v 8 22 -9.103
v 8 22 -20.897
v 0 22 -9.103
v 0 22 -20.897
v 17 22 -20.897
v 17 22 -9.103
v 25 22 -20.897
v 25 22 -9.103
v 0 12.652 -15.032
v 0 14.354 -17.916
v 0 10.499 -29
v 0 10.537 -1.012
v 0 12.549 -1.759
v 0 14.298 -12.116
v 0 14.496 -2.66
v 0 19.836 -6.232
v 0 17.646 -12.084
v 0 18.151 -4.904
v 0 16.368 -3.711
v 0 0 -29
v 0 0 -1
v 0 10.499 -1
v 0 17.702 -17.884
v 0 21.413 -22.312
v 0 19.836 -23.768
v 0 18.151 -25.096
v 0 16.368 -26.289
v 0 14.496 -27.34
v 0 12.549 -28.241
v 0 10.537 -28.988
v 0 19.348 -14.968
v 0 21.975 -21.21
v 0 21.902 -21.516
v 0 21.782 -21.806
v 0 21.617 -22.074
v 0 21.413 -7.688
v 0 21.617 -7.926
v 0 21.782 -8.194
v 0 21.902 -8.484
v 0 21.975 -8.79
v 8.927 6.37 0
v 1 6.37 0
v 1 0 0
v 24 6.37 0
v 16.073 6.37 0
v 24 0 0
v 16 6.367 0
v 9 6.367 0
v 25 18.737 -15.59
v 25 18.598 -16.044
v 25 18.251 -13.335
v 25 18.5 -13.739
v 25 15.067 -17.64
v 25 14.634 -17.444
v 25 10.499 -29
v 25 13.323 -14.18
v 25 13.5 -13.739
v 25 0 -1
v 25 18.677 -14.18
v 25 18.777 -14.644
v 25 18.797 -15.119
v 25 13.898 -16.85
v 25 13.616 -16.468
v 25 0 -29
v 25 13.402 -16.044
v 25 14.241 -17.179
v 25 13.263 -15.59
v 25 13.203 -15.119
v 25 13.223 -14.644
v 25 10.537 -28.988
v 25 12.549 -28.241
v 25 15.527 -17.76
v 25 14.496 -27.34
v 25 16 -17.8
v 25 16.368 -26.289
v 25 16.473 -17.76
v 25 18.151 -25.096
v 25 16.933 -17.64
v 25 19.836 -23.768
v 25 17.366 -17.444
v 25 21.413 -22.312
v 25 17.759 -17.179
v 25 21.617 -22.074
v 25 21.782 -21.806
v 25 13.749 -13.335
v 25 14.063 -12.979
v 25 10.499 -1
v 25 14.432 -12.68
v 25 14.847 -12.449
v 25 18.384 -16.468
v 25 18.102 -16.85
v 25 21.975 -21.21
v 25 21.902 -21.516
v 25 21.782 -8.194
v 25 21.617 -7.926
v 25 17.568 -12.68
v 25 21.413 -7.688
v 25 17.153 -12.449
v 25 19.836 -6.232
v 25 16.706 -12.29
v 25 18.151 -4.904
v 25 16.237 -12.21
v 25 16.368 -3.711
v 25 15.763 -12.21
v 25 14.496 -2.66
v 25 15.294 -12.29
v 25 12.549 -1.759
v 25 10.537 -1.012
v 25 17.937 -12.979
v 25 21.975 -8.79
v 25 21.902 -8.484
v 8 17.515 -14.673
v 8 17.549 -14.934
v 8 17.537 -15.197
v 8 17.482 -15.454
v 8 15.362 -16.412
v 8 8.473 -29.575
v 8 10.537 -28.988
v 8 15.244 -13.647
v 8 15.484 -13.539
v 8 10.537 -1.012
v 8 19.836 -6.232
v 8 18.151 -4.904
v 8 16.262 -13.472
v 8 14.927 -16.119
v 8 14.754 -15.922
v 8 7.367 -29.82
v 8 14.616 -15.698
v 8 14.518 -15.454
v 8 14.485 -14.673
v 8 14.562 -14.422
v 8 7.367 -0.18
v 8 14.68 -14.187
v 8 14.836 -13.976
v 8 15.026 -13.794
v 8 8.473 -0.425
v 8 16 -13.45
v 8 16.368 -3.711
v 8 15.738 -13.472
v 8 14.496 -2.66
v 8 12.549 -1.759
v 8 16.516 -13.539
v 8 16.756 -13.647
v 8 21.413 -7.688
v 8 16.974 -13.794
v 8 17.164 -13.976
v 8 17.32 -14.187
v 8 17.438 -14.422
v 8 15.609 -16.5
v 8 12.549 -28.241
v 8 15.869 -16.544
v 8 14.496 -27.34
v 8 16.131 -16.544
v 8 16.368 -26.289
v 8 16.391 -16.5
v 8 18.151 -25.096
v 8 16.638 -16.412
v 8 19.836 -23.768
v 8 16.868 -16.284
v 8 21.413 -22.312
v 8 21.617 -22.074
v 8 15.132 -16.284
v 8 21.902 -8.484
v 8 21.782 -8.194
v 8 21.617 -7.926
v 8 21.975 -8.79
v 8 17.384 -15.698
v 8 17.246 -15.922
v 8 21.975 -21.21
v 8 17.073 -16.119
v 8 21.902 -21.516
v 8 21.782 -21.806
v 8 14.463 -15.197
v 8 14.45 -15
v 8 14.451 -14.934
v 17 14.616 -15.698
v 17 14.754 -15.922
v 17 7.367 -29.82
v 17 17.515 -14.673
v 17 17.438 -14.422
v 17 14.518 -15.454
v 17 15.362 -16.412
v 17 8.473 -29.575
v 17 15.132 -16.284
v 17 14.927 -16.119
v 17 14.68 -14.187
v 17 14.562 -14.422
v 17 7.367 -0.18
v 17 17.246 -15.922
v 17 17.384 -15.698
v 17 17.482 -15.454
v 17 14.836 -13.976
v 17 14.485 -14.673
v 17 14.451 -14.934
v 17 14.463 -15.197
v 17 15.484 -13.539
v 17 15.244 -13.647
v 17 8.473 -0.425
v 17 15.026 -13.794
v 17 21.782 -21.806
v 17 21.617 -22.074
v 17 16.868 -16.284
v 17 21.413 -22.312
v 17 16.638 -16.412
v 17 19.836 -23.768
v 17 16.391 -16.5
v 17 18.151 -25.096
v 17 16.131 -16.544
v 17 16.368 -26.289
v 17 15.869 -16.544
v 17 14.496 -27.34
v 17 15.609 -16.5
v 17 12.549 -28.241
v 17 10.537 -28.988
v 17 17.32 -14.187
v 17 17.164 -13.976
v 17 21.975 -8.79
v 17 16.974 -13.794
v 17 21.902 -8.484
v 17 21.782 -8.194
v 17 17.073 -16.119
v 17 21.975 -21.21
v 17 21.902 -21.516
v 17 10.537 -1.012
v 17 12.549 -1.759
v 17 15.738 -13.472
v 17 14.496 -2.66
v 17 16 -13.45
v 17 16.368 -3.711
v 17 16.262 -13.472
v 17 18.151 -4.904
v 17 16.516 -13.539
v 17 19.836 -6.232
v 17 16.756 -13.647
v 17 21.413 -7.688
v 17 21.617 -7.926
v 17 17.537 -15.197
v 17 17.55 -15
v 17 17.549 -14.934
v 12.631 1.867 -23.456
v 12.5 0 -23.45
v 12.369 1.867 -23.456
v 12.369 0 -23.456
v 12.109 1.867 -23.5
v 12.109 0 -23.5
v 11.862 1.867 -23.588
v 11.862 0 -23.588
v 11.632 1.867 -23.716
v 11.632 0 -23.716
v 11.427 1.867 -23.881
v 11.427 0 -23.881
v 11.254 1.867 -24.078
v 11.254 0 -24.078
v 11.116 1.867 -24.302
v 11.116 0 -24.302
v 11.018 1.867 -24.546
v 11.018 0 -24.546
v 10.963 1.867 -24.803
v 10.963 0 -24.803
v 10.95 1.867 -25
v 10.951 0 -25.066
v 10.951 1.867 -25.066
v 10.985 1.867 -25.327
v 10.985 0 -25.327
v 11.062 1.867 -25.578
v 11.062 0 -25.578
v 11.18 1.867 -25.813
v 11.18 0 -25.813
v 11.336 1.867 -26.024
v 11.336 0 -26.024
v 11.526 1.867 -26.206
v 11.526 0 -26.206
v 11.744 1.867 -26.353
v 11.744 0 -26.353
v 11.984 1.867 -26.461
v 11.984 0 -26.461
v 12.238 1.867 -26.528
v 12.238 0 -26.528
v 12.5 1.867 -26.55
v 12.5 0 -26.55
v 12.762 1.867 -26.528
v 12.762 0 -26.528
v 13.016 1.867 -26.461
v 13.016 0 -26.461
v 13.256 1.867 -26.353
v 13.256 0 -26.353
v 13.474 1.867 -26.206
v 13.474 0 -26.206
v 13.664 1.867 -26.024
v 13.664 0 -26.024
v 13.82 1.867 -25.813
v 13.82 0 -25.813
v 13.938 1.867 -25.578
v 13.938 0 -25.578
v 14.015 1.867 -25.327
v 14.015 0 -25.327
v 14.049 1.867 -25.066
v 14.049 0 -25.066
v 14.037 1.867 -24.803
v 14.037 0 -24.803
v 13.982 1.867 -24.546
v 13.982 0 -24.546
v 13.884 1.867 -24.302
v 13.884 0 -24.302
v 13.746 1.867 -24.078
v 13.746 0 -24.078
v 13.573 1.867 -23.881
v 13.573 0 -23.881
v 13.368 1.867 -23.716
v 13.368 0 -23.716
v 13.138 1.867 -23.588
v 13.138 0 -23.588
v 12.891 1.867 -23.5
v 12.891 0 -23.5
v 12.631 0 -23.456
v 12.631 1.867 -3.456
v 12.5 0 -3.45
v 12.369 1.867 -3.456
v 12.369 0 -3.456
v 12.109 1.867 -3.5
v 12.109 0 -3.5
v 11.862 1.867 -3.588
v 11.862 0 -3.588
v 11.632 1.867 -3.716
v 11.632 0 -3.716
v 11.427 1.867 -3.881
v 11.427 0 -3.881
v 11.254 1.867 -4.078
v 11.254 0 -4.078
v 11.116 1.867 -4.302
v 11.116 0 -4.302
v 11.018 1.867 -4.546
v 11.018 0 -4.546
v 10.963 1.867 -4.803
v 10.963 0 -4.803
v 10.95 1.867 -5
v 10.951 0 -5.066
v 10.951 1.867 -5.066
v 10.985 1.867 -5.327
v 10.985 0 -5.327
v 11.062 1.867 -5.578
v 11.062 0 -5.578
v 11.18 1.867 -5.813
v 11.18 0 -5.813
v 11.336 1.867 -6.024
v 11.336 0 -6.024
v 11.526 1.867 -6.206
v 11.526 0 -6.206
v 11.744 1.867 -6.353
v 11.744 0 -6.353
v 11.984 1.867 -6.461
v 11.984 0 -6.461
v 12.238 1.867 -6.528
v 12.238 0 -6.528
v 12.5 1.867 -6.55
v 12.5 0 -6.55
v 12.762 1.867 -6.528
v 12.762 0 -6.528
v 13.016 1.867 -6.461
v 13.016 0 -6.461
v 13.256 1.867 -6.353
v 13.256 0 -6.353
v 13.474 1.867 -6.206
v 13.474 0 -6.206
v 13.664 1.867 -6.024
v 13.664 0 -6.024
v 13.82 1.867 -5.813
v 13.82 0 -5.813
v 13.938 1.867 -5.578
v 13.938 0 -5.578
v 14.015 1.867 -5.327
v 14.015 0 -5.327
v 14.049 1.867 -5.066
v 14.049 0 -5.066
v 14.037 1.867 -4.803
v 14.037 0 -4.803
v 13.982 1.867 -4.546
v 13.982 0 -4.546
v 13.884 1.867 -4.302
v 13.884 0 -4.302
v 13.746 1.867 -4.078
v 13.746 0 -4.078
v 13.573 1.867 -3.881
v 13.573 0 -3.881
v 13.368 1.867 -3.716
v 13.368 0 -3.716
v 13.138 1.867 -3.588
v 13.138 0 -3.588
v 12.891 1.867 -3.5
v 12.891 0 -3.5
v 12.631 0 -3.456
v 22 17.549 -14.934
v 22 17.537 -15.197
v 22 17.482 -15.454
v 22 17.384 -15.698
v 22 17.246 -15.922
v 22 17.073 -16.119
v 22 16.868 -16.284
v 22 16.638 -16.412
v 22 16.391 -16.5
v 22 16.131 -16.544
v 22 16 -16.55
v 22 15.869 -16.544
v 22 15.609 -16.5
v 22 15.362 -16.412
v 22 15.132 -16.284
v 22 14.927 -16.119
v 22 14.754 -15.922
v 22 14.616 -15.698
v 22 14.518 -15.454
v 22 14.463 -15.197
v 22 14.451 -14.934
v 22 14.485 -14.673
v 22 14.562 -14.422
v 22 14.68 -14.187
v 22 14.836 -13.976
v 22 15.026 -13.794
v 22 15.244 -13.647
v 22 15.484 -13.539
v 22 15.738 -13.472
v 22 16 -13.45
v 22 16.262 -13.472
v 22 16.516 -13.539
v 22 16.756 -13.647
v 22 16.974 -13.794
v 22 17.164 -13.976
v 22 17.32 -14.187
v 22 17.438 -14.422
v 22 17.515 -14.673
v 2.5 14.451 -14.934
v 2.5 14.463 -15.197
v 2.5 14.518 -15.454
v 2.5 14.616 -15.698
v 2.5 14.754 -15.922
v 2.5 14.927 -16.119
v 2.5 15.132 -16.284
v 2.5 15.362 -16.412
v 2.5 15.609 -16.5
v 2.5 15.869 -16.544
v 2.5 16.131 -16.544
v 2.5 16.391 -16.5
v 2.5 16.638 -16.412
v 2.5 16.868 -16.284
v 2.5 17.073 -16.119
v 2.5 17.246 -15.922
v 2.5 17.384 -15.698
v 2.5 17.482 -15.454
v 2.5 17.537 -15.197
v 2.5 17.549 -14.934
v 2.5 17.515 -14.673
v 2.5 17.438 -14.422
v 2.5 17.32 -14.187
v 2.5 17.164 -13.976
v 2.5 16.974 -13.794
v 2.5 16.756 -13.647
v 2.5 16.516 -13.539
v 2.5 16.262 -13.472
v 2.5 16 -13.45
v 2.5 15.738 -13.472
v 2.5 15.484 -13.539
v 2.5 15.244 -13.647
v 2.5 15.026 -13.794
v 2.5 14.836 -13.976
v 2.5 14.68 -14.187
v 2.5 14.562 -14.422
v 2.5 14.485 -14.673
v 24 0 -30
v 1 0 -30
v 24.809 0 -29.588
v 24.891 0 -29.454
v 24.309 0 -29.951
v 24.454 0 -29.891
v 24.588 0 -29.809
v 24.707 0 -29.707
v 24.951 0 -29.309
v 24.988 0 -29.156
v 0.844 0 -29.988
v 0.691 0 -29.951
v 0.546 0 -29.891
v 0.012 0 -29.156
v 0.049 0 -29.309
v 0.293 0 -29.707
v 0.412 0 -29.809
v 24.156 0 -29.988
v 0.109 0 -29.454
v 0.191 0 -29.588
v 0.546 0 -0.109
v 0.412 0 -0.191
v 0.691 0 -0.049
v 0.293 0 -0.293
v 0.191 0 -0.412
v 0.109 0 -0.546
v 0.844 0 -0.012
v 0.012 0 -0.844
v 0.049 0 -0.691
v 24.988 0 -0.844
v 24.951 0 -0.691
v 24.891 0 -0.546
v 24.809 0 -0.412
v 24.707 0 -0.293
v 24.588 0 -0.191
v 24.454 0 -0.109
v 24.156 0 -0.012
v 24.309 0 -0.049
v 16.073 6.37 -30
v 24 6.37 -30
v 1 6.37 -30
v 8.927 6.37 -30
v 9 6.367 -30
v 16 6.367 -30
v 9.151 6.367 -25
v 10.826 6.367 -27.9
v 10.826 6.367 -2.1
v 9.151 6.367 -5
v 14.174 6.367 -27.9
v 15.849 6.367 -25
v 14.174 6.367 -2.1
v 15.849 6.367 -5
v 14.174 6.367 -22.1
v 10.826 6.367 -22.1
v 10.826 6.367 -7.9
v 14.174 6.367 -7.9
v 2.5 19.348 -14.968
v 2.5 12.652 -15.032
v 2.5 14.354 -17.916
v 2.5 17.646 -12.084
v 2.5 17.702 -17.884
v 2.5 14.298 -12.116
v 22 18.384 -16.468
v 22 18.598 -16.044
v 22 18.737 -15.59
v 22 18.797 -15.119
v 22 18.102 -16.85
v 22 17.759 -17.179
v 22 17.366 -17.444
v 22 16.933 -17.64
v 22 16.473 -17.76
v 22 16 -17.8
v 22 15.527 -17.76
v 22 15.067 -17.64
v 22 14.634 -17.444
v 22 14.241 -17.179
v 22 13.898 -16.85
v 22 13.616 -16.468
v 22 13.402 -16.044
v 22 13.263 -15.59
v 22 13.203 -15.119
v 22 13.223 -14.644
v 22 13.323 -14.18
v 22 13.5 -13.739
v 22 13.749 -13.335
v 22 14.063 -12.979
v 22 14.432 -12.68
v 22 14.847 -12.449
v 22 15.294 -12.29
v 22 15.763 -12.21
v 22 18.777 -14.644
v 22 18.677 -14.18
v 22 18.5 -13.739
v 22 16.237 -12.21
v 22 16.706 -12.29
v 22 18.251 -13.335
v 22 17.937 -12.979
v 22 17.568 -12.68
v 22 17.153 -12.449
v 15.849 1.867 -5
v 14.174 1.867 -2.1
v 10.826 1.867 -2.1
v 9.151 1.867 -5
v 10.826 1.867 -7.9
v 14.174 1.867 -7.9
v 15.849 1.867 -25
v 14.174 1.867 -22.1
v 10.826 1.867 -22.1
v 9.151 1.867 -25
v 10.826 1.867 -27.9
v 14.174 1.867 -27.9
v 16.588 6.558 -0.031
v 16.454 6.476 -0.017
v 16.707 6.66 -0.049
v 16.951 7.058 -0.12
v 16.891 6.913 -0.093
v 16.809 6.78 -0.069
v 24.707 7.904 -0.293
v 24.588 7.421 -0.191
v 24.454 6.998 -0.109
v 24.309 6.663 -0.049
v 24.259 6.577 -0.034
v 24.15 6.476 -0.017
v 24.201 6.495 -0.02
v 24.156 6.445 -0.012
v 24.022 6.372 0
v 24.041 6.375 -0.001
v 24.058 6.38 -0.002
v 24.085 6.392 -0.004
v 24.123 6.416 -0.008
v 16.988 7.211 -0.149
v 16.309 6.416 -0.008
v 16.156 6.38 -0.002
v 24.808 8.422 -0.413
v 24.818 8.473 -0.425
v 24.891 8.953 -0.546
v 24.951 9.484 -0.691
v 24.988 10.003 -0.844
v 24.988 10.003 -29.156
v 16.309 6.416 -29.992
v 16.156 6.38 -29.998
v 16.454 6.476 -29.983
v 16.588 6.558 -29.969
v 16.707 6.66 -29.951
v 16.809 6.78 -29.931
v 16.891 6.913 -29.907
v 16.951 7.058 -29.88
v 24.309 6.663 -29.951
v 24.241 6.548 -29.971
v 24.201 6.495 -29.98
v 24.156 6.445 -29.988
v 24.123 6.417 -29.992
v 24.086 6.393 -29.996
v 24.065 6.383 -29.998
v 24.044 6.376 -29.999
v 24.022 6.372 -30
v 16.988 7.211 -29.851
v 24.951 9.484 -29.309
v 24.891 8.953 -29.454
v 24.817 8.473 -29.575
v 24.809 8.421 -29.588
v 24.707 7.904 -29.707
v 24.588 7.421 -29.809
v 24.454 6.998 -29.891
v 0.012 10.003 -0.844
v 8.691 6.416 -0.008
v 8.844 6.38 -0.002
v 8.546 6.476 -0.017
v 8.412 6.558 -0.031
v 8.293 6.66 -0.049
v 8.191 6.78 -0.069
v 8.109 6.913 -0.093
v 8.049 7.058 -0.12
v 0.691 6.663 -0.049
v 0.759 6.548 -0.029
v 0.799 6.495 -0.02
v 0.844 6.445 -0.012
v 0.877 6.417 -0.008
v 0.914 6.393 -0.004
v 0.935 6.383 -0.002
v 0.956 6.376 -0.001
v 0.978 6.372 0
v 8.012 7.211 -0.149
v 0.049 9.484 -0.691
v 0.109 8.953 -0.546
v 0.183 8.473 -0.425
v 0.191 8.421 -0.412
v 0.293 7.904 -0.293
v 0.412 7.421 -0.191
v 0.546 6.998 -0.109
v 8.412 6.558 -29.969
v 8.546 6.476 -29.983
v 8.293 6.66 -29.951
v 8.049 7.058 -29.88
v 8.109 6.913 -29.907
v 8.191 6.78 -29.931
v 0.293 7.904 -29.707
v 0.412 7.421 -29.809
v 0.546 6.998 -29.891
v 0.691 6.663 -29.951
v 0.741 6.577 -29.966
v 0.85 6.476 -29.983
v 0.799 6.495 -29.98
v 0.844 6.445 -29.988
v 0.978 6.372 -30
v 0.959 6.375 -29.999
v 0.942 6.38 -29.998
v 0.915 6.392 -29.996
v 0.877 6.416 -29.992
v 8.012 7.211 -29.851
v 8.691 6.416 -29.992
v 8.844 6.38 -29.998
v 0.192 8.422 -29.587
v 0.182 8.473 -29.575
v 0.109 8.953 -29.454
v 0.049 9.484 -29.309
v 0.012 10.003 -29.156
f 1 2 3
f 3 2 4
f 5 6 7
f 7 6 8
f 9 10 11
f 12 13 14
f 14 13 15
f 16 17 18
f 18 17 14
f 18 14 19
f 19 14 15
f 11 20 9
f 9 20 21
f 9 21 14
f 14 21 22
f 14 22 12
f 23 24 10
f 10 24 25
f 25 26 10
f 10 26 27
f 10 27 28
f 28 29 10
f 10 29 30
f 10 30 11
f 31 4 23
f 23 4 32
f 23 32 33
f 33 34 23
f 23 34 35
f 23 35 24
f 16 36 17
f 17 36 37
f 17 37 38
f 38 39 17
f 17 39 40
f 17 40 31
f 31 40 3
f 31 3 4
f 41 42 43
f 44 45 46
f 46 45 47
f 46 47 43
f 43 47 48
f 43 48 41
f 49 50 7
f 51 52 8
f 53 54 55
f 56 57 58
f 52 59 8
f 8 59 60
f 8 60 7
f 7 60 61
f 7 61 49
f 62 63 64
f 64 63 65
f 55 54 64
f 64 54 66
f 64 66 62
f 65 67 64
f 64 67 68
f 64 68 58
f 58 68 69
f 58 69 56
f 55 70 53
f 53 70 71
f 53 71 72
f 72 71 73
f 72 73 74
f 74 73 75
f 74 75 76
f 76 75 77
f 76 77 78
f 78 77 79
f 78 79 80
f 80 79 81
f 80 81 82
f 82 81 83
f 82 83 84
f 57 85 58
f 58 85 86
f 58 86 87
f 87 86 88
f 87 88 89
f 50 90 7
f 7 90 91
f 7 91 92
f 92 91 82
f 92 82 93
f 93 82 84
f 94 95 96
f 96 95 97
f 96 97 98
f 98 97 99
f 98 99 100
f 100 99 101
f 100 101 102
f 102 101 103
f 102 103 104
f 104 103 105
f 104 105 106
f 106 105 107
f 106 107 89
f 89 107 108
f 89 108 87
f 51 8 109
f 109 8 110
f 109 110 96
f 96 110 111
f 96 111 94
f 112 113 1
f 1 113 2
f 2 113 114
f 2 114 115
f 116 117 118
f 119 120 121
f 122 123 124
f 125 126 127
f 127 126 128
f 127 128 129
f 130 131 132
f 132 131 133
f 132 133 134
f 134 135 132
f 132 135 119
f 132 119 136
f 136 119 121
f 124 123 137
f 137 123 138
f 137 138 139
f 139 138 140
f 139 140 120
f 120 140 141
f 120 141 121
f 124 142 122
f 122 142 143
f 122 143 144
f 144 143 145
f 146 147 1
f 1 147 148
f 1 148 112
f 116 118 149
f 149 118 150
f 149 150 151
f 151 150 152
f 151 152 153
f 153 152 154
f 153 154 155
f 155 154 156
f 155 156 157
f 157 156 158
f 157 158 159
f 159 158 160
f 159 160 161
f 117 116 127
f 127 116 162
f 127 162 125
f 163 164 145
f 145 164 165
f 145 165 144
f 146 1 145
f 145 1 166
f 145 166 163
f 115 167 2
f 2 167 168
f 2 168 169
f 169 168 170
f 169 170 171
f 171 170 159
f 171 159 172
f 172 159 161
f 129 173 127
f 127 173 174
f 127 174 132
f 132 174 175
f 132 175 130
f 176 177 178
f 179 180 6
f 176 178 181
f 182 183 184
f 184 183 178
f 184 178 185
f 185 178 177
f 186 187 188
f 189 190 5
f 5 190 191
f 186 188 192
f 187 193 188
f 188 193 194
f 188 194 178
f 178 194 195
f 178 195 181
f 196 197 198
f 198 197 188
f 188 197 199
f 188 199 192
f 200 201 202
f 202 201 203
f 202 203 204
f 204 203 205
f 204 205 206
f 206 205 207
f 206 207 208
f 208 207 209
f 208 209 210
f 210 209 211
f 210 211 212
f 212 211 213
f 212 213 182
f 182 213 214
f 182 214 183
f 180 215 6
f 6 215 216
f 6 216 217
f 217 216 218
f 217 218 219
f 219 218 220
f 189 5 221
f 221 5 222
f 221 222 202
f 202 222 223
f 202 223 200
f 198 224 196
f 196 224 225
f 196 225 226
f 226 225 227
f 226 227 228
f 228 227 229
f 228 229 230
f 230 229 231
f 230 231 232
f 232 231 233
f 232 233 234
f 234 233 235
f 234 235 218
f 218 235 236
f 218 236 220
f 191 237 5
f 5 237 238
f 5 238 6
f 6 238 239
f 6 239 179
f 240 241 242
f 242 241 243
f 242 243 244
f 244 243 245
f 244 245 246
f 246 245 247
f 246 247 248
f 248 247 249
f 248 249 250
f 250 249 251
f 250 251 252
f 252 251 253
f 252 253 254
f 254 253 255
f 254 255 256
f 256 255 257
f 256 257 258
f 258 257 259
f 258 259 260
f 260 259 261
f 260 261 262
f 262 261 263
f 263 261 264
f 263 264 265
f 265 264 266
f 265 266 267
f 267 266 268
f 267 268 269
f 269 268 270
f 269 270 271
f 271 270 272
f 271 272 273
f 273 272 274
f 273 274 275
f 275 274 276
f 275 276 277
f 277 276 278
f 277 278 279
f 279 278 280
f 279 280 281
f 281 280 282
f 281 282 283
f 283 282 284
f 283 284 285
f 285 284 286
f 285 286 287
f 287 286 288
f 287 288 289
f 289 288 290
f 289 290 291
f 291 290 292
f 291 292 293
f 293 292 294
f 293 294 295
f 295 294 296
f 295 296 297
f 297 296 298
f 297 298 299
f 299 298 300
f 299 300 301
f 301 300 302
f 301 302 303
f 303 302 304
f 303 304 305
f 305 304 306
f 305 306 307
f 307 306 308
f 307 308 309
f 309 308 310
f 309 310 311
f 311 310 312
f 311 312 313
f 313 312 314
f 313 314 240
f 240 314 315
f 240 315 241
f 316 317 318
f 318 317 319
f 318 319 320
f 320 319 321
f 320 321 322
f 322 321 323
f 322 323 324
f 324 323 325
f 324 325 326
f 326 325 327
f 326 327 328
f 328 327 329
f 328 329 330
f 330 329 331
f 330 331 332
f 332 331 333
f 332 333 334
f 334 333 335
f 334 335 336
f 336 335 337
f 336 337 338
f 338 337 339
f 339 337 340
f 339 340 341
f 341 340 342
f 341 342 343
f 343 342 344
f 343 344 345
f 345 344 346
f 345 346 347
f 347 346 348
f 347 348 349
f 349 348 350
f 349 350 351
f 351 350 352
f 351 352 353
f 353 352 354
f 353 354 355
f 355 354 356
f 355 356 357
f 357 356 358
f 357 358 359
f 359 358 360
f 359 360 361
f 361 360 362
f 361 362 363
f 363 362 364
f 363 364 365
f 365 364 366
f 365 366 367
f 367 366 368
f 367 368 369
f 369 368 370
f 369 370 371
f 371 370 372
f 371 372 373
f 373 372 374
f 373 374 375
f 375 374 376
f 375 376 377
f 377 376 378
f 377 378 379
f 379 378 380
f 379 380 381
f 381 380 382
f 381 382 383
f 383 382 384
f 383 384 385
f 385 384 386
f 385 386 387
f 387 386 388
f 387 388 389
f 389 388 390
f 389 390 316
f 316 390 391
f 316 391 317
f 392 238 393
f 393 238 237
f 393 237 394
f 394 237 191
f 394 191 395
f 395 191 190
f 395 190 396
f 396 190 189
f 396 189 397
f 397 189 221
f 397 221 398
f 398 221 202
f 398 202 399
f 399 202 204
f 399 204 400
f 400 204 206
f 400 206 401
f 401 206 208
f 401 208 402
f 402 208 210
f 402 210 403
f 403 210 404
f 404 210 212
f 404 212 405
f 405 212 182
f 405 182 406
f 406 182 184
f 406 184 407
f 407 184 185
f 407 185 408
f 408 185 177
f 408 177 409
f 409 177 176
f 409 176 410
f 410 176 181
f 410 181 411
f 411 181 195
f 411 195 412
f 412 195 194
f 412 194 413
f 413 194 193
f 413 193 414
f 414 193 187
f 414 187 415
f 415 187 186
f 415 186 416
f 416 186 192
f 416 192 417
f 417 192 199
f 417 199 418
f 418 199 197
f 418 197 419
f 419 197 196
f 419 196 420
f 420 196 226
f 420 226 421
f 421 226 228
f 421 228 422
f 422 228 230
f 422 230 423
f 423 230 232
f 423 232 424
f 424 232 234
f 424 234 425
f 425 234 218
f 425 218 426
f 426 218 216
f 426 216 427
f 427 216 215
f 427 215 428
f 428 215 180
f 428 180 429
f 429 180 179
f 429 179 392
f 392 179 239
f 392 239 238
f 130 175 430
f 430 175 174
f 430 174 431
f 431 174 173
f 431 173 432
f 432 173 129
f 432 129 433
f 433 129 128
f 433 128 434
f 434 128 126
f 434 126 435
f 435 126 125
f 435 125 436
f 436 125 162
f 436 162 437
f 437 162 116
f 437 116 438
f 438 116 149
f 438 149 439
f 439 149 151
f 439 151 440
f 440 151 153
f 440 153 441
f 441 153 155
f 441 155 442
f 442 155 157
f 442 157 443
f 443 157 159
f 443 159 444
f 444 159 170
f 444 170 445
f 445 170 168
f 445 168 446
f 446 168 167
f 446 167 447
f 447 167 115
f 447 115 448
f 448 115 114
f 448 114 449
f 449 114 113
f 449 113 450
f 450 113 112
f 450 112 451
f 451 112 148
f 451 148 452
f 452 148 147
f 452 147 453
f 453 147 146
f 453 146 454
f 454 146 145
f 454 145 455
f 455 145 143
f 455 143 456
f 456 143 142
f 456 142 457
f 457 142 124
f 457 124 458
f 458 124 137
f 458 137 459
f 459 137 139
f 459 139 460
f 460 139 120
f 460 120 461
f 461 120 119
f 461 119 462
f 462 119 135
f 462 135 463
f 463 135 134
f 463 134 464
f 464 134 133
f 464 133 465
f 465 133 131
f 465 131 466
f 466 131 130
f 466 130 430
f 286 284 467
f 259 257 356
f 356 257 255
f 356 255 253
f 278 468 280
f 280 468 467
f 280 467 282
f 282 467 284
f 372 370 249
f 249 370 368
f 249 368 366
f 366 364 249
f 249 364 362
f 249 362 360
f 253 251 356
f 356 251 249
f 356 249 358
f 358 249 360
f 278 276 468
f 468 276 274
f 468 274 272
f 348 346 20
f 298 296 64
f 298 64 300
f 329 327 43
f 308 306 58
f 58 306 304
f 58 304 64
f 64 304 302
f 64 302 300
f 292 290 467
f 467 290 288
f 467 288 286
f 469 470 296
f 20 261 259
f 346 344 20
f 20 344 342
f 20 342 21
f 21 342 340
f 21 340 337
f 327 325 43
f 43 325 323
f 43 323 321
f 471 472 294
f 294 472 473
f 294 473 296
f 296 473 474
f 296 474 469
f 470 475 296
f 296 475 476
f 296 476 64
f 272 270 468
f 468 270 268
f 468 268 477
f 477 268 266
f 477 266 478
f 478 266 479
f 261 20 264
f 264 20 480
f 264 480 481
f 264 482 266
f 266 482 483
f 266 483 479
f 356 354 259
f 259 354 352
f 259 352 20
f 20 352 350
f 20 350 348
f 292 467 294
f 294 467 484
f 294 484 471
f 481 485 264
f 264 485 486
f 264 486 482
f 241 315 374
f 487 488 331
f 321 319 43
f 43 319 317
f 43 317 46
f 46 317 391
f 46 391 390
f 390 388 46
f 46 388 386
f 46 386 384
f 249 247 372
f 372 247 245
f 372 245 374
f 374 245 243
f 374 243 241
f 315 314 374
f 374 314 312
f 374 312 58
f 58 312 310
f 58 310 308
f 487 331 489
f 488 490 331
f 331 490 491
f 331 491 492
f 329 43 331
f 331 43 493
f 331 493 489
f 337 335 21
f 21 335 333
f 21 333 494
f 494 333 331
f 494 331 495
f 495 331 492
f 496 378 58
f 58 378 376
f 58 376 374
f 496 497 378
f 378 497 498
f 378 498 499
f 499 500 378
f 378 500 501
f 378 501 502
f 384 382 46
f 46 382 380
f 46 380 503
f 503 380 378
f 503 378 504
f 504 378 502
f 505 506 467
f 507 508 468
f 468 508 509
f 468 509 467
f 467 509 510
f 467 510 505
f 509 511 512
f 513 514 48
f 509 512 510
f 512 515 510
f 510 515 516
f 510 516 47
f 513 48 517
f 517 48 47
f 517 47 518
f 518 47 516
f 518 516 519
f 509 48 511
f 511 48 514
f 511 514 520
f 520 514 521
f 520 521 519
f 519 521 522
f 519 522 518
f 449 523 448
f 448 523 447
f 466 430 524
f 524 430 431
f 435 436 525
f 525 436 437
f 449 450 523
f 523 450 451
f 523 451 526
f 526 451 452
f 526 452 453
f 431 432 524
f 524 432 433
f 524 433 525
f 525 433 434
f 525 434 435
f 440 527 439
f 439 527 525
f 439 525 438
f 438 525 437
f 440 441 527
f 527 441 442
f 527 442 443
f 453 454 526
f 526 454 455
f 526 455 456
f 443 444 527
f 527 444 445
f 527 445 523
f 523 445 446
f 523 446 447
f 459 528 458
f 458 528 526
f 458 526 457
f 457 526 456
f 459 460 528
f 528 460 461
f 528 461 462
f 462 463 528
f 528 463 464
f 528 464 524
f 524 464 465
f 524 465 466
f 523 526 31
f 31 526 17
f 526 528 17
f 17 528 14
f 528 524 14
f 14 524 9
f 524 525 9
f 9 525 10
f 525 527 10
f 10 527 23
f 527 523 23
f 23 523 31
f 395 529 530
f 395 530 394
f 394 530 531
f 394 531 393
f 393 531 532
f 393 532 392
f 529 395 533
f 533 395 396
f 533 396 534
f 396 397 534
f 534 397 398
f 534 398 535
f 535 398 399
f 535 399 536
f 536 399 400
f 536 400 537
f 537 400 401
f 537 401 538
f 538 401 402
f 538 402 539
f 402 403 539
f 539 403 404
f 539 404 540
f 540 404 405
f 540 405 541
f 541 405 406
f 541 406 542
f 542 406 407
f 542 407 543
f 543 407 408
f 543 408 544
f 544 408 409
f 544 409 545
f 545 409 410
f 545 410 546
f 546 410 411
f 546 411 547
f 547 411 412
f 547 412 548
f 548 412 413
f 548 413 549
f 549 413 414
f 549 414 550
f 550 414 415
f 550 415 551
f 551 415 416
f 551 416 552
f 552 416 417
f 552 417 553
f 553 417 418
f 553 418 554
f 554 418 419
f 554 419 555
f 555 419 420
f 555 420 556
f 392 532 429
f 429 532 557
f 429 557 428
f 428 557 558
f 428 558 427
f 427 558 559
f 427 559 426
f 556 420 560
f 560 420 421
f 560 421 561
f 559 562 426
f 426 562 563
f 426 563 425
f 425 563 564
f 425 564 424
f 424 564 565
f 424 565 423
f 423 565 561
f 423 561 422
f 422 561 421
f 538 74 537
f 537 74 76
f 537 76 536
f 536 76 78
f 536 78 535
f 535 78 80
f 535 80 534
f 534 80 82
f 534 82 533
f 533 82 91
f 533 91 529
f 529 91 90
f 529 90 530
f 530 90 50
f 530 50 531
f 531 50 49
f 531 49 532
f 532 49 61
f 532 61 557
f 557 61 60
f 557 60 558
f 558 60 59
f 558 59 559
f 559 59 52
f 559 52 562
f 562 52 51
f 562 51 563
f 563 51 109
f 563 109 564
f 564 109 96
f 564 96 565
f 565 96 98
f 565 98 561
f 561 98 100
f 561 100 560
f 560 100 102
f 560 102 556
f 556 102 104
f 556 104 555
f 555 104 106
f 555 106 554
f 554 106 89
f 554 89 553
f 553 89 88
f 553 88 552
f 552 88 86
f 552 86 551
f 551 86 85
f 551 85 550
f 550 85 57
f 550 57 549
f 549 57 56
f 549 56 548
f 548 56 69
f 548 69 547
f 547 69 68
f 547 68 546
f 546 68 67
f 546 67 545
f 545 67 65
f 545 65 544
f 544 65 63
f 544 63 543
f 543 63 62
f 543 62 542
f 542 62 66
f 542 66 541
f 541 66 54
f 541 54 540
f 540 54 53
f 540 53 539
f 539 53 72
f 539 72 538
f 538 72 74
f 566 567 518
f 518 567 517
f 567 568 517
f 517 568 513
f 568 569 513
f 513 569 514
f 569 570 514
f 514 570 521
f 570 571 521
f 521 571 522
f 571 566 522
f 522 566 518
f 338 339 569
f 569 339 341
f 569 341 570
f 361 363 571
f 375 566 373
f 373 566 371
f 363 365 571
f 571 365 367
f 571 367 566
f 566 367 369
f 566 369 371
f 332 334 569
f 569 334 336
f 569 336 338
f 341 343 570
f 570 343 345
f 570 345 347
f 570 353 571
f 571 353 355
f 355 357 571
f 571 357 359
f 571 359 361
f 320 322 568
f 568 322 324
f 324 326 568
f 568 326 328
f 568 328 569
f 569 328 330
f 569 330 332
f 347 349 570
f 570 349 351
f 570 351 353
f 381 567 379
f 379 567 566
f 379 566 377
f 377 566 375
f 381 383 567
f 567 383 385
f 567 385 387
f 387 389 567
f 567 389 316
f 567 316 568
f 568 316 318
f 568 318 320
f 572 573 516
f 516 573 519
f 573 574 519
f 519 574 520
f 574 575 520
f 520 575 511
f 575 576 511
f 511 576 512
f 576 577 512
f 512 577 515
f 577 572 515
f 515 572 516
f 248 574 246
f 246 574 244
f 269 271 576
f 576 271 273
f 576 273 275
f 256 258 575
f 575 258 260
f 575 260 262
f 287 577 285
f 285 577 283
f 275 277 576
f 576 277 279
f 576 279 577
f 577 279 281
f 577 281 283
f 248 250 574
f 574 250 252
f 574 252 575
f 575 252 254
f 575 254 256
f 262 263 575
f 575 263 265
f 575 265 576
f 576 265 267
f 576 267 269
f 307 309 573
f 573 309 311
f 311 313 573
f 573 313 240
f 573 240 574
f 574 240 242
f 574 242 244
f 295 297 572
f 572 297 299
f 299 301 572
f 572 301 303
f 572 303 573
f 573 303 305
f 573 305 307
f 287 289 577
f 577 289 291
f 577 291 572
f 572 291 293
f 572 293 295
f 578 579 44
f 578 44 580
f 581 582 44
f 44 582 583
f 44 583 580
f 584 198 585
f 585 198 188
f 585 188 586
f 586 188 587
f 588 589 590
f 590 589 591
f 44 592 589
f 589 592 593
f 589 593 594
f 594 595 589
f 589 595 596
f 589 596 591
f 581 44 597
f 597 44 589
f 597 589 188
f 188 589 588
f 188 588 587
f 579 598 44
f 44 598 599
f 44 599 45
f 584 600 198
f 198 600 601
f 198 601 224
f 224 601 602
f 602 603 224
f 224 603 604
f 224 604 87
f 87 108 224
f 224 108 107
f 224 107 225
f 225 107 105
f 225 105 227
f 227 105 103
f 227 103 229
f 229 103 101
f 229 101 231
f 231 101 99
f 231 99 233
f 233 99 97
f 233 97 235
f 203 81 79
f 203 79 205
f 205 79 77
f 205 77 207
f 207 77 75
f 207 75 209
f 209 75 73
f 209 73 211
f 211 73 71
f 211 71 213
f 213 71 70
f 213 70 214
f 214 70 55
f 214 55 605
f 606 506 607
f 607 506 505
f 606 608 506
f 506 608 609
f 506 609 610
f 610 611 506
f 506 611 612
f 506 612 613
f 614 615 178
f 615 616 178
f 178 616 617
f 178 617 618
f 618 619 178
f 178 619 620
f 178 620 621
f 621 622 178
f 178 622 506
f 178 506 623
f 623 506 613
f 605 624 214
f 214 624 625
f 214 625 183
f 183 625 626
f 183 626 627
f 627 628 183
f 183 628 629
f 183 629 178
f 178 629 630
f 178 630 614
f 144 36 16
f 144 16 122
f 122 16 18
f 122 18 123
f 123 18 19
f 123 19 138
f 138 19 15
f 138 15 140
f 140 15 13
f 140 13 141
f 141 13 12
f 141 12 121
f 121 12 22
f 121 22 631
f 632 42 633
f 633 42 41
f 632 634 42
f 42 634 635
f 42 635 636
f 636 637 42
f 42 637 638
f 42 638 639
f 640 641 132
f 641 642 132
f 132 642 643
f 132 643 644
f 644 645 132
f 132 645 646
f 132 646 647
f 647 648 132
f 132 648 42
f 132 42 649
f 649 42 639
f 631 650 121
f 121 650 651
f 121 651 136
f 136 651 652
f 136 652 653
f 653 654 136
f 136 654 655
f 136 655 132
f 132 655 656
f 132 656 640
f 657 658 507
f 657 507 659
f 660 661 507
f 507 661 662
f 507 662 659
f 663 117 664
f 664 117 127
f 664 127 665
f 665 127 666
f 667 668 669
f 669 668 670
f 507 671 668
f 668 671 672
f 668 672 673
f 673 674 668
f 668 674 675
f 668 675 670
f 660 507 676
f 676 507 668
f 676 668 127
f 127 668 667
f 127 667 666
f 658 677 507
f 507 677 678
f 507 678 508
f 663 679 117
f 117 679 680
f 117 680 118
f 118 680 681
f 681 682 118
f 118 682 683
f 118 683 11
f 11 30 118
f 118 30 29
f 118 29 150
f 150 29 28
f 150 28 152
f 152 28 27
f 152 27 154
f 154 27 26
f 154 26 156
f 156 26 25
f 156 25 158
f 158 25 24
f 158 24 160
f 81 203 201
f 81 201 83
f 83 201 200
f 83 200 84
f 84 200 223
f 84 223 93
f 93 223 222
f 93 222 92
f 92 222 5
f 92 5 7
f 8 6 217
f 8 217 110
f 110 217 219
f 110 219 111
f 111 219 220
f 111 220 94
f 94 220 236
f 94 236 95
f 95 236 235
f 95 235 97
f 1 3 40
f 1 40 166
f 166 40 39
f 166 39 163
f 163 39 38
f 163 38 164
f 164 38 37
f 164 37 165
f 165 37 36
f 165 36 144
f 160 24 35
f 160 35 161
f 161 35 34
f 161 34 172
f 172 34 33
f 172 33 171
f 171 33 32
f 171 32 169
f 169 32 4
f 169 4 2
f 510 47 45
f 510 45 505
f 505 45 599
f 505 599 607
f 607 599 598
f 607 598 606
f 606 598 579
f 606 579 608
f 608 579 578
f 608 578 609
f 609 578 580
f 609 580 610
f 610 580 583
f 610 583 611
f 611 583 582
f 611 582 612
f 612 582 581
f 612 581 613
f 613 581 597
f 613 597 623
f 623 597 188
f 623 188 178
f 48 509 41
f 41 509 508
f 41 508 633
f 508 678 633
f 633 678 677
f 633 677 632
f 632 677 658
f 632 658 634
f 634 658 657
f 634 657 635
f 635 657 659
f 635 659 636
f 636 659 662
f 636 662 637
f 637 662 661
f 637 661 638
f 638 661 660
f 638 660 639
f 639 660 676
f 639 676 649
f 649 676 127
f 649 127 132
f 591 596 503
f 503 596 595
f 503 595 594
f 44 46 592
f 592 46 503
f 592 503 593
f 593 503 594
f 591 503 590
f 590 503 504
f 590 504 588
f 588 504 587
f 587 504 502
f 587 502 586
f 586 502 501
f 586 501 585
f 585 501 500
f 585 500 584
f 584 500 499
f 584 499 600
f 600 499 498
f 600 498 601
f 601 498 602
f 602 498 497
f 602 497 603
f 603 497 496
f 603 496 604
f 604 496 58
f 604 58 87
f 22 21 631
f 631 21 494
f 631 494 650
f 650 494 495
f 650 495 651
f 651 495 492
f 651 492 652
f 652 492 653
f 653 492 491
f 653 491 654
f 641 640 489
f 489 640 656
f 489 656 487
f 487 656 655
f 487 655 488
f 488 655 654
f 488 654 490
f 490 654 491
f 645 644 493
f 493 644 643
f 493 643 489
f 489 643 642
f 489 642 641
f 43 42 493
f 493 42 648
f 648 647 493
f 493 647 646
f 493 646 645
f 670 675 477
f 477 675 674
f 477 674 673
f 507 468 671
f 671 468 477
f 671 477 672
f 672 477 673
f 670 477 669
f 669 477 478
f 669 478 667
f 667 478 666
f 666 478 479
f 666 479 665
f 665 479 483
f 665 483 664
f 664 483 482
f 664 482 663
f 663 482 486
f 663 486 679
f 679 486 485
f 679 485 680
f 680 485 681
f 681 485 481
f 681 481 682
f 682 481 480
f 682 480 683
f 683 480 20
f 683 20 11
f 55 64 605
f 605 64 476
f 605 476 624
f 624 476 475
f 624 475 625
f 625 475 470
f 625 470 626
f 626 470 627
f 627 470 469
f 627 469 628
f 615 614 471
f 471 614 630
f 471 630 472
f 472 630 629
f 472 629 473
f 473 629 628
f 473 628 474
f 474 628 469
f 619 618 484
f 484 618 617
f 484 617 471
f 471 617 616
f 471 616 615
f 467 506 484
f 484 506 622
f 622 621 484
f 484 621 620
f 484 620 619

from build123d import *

# Parameters (mm, degrees)
CROQUIS1_W              = 25
CROQUIS1_H              = 30
CROQUIS1_R              = 1.55
SALIENTE_EXTRUIR1_DEPTH = 22
CROQUIS2_W              = 9
CROQUIS2_H              = 15.632666969
CORTAR_EXTRUIR1_DEPTH   = 30
CROQUIS3_R              = 1.55
CORTAR_EXTRUIR2_DEPTH   = 25
CORTAR_EXTRUIR3_DEPTH   = 2.5
CROQUIS5_R              = 2.8
CORTAR_EXTRUIR4_DEPTH   = 3
CORTAR_EXTRUIR5_DEPTH   = 4.5
CORTAR_EXTRUIR6_DEPTH   = 25
REDONDEO1_R             = 2
REDONDEO2_R             = 1
REDONDEO3_R             = 1


with BuildPart() as part:
    # Croquis1 → Saliente-Extruir1 (new body)
    with BuildSketch(Plane(origin=(0, 0, 0), x_dir=(1, 0, 0), z_dir=(0, 1, 0))):
        with Locations((12.5, 15)):
            Rectangle(CROQUIS1_W, CROQUIS1_H)
        with Locations((12.5, 25)):
            Circle(CROQUIS1_R, mode=Mode.SUBTRACT)
        with Locations((12.5, 5)):
            Circle(CROQUIS1_R, mode=Mode.SUBTRACT)
    extrude(amount=SALIENTE_EXTRUIR1_DEPTH)

    # Croquis2 → Cortar-Extruir1 (cut)
    with BuildSketch(Plane(origin=(0, 0, -30), x_dir=(-1, 0, 0), z_dir=(0, 0, -1))):
        with Locations((-12.5, 14.183666516)):
            Rectangle(CROQUIS2_W, CROQUIS2_H)
    extrude(amount=-CORTAR_EXTRUIR1_DEPTH, mode=Mode.SUBTRACT)

    # Croquis3 → Cortar-Extruir2 (cut)
    with BuildSketch(Plane.ZY):
        with Locations((-15, 16)):
            Circle(CROQUIS3_R)
    extrude(amount=-CORTAR_EXTRUIR2_DEPTH, mode=Mode.SUBTRACT)

    # Croquis4 → Cortar-Extruir3 (cut)
    with BuildSketch(Plane.ZY):
        Polygon((-14.967896351, 19.348477667), (-17.8838149, 17.702041409), (-17.915918548, 14.353563741), (-15.032103649, 12.651522333), (-12.1161851, 14.297958591), (-12.084081452, 17.646436259), align=None)
    extrude(amount=-CORTAR_EXTRUIR3_DEPTH, mode=Mode.SUBTRACT)

    # Croquis5 → Cortar-Extruir4 (cut)
    with BuildSketch(Plane(origin=(25, 0, 0), x_dir=(0, 0, -1), z_dir=(1, 0, 0))):
        with Locations((15, 16)):
            Circle(CROQUIS5_R)
    extrude(amount=-CORTAR_EXTRUIR4_DEPTH, mode=Mode.SUBTRACT)

    # Croquis6 → Cortar-Extruir5 (cut)
    with BuildSketch(Plane(origin=(0, 6.367333031, 0), x_dir=(1, 0, 0), z_dir=(0, 1, 0))):
        Polygon((15.848631561, 25), (14.174315781, 27.9), (10.825684219, 27.9), (9.151368439, 25), (10.825684219, 22.1), (14.174315781, 22.1), align=None)
        Polygon((15.848631561, 5), (14.174315781, 7.9), (10.825684219, 7.9), (9.151368439, 5), (10.825684219, 2.1), (14.174315781, 2.1), align=None)
    extrude(amount=-CORTAR_EXTRUIR5_DEPTH, mode=Mode.SUBTRACT)

    # Croquis7 → Cortar-Extruir6 (cut)
    with BuildSketch(Plane.ZY):
        with BuildLine():
            Line((-21.708203932, 22), (-30, 22))
            Line((-30, 22), (-30, 6.37))
            ThreePointArc((-30, 6.37), (-27.145099003, 14.869880624), (-21.708203932, 22))
        make_face()
        with BuildLine():
            Line((0, 22), (-8.291796068, 22))
            ThreePointArc((-8.291796068, 22), (-2.854900997, 14.869880624), (0, 6.37))
            Line((0, 6.37), (0, 22))
        make_face()
    extrude(amount=-CORTAR_EXTRUIR6_DEPTH, mode=Mode.SUBTRACT)

    # Redondeo1
    redondeo1_edges = [part.edges().sort_by_distance(p)[0] for p in [
        (4, 22, -21.708203932),
        (21, 22, -21.708203932),
        (4, 22, -8.291796068),
        (21, 22, -8.291796068),
    ]]
    fillet(redondeo1_edges, radius=REDONDEO1_R)

    # Redondeo2
    redondeo2_edges = [part.edges().sort_by_distance(p)[0] for p in [
        (17, 6.367333031, -15),
        (8, 6.367333031, -15),
    ]]
    fillet(redondeo2_edges, radius=REDONDEO2_R)

    # Redondeo3
    redondeo3_edges = [part.edges().sort_by_distance(p)[0] for p in [
        (25, 3.185, -30),
        (0, 3.185, -30),
        (25, 3.185, 0),
        (0, 3.185, 0),
    ]]
    fillet(redondeo3_edges, radius=REDONDEO3_R)


solid = part.part
